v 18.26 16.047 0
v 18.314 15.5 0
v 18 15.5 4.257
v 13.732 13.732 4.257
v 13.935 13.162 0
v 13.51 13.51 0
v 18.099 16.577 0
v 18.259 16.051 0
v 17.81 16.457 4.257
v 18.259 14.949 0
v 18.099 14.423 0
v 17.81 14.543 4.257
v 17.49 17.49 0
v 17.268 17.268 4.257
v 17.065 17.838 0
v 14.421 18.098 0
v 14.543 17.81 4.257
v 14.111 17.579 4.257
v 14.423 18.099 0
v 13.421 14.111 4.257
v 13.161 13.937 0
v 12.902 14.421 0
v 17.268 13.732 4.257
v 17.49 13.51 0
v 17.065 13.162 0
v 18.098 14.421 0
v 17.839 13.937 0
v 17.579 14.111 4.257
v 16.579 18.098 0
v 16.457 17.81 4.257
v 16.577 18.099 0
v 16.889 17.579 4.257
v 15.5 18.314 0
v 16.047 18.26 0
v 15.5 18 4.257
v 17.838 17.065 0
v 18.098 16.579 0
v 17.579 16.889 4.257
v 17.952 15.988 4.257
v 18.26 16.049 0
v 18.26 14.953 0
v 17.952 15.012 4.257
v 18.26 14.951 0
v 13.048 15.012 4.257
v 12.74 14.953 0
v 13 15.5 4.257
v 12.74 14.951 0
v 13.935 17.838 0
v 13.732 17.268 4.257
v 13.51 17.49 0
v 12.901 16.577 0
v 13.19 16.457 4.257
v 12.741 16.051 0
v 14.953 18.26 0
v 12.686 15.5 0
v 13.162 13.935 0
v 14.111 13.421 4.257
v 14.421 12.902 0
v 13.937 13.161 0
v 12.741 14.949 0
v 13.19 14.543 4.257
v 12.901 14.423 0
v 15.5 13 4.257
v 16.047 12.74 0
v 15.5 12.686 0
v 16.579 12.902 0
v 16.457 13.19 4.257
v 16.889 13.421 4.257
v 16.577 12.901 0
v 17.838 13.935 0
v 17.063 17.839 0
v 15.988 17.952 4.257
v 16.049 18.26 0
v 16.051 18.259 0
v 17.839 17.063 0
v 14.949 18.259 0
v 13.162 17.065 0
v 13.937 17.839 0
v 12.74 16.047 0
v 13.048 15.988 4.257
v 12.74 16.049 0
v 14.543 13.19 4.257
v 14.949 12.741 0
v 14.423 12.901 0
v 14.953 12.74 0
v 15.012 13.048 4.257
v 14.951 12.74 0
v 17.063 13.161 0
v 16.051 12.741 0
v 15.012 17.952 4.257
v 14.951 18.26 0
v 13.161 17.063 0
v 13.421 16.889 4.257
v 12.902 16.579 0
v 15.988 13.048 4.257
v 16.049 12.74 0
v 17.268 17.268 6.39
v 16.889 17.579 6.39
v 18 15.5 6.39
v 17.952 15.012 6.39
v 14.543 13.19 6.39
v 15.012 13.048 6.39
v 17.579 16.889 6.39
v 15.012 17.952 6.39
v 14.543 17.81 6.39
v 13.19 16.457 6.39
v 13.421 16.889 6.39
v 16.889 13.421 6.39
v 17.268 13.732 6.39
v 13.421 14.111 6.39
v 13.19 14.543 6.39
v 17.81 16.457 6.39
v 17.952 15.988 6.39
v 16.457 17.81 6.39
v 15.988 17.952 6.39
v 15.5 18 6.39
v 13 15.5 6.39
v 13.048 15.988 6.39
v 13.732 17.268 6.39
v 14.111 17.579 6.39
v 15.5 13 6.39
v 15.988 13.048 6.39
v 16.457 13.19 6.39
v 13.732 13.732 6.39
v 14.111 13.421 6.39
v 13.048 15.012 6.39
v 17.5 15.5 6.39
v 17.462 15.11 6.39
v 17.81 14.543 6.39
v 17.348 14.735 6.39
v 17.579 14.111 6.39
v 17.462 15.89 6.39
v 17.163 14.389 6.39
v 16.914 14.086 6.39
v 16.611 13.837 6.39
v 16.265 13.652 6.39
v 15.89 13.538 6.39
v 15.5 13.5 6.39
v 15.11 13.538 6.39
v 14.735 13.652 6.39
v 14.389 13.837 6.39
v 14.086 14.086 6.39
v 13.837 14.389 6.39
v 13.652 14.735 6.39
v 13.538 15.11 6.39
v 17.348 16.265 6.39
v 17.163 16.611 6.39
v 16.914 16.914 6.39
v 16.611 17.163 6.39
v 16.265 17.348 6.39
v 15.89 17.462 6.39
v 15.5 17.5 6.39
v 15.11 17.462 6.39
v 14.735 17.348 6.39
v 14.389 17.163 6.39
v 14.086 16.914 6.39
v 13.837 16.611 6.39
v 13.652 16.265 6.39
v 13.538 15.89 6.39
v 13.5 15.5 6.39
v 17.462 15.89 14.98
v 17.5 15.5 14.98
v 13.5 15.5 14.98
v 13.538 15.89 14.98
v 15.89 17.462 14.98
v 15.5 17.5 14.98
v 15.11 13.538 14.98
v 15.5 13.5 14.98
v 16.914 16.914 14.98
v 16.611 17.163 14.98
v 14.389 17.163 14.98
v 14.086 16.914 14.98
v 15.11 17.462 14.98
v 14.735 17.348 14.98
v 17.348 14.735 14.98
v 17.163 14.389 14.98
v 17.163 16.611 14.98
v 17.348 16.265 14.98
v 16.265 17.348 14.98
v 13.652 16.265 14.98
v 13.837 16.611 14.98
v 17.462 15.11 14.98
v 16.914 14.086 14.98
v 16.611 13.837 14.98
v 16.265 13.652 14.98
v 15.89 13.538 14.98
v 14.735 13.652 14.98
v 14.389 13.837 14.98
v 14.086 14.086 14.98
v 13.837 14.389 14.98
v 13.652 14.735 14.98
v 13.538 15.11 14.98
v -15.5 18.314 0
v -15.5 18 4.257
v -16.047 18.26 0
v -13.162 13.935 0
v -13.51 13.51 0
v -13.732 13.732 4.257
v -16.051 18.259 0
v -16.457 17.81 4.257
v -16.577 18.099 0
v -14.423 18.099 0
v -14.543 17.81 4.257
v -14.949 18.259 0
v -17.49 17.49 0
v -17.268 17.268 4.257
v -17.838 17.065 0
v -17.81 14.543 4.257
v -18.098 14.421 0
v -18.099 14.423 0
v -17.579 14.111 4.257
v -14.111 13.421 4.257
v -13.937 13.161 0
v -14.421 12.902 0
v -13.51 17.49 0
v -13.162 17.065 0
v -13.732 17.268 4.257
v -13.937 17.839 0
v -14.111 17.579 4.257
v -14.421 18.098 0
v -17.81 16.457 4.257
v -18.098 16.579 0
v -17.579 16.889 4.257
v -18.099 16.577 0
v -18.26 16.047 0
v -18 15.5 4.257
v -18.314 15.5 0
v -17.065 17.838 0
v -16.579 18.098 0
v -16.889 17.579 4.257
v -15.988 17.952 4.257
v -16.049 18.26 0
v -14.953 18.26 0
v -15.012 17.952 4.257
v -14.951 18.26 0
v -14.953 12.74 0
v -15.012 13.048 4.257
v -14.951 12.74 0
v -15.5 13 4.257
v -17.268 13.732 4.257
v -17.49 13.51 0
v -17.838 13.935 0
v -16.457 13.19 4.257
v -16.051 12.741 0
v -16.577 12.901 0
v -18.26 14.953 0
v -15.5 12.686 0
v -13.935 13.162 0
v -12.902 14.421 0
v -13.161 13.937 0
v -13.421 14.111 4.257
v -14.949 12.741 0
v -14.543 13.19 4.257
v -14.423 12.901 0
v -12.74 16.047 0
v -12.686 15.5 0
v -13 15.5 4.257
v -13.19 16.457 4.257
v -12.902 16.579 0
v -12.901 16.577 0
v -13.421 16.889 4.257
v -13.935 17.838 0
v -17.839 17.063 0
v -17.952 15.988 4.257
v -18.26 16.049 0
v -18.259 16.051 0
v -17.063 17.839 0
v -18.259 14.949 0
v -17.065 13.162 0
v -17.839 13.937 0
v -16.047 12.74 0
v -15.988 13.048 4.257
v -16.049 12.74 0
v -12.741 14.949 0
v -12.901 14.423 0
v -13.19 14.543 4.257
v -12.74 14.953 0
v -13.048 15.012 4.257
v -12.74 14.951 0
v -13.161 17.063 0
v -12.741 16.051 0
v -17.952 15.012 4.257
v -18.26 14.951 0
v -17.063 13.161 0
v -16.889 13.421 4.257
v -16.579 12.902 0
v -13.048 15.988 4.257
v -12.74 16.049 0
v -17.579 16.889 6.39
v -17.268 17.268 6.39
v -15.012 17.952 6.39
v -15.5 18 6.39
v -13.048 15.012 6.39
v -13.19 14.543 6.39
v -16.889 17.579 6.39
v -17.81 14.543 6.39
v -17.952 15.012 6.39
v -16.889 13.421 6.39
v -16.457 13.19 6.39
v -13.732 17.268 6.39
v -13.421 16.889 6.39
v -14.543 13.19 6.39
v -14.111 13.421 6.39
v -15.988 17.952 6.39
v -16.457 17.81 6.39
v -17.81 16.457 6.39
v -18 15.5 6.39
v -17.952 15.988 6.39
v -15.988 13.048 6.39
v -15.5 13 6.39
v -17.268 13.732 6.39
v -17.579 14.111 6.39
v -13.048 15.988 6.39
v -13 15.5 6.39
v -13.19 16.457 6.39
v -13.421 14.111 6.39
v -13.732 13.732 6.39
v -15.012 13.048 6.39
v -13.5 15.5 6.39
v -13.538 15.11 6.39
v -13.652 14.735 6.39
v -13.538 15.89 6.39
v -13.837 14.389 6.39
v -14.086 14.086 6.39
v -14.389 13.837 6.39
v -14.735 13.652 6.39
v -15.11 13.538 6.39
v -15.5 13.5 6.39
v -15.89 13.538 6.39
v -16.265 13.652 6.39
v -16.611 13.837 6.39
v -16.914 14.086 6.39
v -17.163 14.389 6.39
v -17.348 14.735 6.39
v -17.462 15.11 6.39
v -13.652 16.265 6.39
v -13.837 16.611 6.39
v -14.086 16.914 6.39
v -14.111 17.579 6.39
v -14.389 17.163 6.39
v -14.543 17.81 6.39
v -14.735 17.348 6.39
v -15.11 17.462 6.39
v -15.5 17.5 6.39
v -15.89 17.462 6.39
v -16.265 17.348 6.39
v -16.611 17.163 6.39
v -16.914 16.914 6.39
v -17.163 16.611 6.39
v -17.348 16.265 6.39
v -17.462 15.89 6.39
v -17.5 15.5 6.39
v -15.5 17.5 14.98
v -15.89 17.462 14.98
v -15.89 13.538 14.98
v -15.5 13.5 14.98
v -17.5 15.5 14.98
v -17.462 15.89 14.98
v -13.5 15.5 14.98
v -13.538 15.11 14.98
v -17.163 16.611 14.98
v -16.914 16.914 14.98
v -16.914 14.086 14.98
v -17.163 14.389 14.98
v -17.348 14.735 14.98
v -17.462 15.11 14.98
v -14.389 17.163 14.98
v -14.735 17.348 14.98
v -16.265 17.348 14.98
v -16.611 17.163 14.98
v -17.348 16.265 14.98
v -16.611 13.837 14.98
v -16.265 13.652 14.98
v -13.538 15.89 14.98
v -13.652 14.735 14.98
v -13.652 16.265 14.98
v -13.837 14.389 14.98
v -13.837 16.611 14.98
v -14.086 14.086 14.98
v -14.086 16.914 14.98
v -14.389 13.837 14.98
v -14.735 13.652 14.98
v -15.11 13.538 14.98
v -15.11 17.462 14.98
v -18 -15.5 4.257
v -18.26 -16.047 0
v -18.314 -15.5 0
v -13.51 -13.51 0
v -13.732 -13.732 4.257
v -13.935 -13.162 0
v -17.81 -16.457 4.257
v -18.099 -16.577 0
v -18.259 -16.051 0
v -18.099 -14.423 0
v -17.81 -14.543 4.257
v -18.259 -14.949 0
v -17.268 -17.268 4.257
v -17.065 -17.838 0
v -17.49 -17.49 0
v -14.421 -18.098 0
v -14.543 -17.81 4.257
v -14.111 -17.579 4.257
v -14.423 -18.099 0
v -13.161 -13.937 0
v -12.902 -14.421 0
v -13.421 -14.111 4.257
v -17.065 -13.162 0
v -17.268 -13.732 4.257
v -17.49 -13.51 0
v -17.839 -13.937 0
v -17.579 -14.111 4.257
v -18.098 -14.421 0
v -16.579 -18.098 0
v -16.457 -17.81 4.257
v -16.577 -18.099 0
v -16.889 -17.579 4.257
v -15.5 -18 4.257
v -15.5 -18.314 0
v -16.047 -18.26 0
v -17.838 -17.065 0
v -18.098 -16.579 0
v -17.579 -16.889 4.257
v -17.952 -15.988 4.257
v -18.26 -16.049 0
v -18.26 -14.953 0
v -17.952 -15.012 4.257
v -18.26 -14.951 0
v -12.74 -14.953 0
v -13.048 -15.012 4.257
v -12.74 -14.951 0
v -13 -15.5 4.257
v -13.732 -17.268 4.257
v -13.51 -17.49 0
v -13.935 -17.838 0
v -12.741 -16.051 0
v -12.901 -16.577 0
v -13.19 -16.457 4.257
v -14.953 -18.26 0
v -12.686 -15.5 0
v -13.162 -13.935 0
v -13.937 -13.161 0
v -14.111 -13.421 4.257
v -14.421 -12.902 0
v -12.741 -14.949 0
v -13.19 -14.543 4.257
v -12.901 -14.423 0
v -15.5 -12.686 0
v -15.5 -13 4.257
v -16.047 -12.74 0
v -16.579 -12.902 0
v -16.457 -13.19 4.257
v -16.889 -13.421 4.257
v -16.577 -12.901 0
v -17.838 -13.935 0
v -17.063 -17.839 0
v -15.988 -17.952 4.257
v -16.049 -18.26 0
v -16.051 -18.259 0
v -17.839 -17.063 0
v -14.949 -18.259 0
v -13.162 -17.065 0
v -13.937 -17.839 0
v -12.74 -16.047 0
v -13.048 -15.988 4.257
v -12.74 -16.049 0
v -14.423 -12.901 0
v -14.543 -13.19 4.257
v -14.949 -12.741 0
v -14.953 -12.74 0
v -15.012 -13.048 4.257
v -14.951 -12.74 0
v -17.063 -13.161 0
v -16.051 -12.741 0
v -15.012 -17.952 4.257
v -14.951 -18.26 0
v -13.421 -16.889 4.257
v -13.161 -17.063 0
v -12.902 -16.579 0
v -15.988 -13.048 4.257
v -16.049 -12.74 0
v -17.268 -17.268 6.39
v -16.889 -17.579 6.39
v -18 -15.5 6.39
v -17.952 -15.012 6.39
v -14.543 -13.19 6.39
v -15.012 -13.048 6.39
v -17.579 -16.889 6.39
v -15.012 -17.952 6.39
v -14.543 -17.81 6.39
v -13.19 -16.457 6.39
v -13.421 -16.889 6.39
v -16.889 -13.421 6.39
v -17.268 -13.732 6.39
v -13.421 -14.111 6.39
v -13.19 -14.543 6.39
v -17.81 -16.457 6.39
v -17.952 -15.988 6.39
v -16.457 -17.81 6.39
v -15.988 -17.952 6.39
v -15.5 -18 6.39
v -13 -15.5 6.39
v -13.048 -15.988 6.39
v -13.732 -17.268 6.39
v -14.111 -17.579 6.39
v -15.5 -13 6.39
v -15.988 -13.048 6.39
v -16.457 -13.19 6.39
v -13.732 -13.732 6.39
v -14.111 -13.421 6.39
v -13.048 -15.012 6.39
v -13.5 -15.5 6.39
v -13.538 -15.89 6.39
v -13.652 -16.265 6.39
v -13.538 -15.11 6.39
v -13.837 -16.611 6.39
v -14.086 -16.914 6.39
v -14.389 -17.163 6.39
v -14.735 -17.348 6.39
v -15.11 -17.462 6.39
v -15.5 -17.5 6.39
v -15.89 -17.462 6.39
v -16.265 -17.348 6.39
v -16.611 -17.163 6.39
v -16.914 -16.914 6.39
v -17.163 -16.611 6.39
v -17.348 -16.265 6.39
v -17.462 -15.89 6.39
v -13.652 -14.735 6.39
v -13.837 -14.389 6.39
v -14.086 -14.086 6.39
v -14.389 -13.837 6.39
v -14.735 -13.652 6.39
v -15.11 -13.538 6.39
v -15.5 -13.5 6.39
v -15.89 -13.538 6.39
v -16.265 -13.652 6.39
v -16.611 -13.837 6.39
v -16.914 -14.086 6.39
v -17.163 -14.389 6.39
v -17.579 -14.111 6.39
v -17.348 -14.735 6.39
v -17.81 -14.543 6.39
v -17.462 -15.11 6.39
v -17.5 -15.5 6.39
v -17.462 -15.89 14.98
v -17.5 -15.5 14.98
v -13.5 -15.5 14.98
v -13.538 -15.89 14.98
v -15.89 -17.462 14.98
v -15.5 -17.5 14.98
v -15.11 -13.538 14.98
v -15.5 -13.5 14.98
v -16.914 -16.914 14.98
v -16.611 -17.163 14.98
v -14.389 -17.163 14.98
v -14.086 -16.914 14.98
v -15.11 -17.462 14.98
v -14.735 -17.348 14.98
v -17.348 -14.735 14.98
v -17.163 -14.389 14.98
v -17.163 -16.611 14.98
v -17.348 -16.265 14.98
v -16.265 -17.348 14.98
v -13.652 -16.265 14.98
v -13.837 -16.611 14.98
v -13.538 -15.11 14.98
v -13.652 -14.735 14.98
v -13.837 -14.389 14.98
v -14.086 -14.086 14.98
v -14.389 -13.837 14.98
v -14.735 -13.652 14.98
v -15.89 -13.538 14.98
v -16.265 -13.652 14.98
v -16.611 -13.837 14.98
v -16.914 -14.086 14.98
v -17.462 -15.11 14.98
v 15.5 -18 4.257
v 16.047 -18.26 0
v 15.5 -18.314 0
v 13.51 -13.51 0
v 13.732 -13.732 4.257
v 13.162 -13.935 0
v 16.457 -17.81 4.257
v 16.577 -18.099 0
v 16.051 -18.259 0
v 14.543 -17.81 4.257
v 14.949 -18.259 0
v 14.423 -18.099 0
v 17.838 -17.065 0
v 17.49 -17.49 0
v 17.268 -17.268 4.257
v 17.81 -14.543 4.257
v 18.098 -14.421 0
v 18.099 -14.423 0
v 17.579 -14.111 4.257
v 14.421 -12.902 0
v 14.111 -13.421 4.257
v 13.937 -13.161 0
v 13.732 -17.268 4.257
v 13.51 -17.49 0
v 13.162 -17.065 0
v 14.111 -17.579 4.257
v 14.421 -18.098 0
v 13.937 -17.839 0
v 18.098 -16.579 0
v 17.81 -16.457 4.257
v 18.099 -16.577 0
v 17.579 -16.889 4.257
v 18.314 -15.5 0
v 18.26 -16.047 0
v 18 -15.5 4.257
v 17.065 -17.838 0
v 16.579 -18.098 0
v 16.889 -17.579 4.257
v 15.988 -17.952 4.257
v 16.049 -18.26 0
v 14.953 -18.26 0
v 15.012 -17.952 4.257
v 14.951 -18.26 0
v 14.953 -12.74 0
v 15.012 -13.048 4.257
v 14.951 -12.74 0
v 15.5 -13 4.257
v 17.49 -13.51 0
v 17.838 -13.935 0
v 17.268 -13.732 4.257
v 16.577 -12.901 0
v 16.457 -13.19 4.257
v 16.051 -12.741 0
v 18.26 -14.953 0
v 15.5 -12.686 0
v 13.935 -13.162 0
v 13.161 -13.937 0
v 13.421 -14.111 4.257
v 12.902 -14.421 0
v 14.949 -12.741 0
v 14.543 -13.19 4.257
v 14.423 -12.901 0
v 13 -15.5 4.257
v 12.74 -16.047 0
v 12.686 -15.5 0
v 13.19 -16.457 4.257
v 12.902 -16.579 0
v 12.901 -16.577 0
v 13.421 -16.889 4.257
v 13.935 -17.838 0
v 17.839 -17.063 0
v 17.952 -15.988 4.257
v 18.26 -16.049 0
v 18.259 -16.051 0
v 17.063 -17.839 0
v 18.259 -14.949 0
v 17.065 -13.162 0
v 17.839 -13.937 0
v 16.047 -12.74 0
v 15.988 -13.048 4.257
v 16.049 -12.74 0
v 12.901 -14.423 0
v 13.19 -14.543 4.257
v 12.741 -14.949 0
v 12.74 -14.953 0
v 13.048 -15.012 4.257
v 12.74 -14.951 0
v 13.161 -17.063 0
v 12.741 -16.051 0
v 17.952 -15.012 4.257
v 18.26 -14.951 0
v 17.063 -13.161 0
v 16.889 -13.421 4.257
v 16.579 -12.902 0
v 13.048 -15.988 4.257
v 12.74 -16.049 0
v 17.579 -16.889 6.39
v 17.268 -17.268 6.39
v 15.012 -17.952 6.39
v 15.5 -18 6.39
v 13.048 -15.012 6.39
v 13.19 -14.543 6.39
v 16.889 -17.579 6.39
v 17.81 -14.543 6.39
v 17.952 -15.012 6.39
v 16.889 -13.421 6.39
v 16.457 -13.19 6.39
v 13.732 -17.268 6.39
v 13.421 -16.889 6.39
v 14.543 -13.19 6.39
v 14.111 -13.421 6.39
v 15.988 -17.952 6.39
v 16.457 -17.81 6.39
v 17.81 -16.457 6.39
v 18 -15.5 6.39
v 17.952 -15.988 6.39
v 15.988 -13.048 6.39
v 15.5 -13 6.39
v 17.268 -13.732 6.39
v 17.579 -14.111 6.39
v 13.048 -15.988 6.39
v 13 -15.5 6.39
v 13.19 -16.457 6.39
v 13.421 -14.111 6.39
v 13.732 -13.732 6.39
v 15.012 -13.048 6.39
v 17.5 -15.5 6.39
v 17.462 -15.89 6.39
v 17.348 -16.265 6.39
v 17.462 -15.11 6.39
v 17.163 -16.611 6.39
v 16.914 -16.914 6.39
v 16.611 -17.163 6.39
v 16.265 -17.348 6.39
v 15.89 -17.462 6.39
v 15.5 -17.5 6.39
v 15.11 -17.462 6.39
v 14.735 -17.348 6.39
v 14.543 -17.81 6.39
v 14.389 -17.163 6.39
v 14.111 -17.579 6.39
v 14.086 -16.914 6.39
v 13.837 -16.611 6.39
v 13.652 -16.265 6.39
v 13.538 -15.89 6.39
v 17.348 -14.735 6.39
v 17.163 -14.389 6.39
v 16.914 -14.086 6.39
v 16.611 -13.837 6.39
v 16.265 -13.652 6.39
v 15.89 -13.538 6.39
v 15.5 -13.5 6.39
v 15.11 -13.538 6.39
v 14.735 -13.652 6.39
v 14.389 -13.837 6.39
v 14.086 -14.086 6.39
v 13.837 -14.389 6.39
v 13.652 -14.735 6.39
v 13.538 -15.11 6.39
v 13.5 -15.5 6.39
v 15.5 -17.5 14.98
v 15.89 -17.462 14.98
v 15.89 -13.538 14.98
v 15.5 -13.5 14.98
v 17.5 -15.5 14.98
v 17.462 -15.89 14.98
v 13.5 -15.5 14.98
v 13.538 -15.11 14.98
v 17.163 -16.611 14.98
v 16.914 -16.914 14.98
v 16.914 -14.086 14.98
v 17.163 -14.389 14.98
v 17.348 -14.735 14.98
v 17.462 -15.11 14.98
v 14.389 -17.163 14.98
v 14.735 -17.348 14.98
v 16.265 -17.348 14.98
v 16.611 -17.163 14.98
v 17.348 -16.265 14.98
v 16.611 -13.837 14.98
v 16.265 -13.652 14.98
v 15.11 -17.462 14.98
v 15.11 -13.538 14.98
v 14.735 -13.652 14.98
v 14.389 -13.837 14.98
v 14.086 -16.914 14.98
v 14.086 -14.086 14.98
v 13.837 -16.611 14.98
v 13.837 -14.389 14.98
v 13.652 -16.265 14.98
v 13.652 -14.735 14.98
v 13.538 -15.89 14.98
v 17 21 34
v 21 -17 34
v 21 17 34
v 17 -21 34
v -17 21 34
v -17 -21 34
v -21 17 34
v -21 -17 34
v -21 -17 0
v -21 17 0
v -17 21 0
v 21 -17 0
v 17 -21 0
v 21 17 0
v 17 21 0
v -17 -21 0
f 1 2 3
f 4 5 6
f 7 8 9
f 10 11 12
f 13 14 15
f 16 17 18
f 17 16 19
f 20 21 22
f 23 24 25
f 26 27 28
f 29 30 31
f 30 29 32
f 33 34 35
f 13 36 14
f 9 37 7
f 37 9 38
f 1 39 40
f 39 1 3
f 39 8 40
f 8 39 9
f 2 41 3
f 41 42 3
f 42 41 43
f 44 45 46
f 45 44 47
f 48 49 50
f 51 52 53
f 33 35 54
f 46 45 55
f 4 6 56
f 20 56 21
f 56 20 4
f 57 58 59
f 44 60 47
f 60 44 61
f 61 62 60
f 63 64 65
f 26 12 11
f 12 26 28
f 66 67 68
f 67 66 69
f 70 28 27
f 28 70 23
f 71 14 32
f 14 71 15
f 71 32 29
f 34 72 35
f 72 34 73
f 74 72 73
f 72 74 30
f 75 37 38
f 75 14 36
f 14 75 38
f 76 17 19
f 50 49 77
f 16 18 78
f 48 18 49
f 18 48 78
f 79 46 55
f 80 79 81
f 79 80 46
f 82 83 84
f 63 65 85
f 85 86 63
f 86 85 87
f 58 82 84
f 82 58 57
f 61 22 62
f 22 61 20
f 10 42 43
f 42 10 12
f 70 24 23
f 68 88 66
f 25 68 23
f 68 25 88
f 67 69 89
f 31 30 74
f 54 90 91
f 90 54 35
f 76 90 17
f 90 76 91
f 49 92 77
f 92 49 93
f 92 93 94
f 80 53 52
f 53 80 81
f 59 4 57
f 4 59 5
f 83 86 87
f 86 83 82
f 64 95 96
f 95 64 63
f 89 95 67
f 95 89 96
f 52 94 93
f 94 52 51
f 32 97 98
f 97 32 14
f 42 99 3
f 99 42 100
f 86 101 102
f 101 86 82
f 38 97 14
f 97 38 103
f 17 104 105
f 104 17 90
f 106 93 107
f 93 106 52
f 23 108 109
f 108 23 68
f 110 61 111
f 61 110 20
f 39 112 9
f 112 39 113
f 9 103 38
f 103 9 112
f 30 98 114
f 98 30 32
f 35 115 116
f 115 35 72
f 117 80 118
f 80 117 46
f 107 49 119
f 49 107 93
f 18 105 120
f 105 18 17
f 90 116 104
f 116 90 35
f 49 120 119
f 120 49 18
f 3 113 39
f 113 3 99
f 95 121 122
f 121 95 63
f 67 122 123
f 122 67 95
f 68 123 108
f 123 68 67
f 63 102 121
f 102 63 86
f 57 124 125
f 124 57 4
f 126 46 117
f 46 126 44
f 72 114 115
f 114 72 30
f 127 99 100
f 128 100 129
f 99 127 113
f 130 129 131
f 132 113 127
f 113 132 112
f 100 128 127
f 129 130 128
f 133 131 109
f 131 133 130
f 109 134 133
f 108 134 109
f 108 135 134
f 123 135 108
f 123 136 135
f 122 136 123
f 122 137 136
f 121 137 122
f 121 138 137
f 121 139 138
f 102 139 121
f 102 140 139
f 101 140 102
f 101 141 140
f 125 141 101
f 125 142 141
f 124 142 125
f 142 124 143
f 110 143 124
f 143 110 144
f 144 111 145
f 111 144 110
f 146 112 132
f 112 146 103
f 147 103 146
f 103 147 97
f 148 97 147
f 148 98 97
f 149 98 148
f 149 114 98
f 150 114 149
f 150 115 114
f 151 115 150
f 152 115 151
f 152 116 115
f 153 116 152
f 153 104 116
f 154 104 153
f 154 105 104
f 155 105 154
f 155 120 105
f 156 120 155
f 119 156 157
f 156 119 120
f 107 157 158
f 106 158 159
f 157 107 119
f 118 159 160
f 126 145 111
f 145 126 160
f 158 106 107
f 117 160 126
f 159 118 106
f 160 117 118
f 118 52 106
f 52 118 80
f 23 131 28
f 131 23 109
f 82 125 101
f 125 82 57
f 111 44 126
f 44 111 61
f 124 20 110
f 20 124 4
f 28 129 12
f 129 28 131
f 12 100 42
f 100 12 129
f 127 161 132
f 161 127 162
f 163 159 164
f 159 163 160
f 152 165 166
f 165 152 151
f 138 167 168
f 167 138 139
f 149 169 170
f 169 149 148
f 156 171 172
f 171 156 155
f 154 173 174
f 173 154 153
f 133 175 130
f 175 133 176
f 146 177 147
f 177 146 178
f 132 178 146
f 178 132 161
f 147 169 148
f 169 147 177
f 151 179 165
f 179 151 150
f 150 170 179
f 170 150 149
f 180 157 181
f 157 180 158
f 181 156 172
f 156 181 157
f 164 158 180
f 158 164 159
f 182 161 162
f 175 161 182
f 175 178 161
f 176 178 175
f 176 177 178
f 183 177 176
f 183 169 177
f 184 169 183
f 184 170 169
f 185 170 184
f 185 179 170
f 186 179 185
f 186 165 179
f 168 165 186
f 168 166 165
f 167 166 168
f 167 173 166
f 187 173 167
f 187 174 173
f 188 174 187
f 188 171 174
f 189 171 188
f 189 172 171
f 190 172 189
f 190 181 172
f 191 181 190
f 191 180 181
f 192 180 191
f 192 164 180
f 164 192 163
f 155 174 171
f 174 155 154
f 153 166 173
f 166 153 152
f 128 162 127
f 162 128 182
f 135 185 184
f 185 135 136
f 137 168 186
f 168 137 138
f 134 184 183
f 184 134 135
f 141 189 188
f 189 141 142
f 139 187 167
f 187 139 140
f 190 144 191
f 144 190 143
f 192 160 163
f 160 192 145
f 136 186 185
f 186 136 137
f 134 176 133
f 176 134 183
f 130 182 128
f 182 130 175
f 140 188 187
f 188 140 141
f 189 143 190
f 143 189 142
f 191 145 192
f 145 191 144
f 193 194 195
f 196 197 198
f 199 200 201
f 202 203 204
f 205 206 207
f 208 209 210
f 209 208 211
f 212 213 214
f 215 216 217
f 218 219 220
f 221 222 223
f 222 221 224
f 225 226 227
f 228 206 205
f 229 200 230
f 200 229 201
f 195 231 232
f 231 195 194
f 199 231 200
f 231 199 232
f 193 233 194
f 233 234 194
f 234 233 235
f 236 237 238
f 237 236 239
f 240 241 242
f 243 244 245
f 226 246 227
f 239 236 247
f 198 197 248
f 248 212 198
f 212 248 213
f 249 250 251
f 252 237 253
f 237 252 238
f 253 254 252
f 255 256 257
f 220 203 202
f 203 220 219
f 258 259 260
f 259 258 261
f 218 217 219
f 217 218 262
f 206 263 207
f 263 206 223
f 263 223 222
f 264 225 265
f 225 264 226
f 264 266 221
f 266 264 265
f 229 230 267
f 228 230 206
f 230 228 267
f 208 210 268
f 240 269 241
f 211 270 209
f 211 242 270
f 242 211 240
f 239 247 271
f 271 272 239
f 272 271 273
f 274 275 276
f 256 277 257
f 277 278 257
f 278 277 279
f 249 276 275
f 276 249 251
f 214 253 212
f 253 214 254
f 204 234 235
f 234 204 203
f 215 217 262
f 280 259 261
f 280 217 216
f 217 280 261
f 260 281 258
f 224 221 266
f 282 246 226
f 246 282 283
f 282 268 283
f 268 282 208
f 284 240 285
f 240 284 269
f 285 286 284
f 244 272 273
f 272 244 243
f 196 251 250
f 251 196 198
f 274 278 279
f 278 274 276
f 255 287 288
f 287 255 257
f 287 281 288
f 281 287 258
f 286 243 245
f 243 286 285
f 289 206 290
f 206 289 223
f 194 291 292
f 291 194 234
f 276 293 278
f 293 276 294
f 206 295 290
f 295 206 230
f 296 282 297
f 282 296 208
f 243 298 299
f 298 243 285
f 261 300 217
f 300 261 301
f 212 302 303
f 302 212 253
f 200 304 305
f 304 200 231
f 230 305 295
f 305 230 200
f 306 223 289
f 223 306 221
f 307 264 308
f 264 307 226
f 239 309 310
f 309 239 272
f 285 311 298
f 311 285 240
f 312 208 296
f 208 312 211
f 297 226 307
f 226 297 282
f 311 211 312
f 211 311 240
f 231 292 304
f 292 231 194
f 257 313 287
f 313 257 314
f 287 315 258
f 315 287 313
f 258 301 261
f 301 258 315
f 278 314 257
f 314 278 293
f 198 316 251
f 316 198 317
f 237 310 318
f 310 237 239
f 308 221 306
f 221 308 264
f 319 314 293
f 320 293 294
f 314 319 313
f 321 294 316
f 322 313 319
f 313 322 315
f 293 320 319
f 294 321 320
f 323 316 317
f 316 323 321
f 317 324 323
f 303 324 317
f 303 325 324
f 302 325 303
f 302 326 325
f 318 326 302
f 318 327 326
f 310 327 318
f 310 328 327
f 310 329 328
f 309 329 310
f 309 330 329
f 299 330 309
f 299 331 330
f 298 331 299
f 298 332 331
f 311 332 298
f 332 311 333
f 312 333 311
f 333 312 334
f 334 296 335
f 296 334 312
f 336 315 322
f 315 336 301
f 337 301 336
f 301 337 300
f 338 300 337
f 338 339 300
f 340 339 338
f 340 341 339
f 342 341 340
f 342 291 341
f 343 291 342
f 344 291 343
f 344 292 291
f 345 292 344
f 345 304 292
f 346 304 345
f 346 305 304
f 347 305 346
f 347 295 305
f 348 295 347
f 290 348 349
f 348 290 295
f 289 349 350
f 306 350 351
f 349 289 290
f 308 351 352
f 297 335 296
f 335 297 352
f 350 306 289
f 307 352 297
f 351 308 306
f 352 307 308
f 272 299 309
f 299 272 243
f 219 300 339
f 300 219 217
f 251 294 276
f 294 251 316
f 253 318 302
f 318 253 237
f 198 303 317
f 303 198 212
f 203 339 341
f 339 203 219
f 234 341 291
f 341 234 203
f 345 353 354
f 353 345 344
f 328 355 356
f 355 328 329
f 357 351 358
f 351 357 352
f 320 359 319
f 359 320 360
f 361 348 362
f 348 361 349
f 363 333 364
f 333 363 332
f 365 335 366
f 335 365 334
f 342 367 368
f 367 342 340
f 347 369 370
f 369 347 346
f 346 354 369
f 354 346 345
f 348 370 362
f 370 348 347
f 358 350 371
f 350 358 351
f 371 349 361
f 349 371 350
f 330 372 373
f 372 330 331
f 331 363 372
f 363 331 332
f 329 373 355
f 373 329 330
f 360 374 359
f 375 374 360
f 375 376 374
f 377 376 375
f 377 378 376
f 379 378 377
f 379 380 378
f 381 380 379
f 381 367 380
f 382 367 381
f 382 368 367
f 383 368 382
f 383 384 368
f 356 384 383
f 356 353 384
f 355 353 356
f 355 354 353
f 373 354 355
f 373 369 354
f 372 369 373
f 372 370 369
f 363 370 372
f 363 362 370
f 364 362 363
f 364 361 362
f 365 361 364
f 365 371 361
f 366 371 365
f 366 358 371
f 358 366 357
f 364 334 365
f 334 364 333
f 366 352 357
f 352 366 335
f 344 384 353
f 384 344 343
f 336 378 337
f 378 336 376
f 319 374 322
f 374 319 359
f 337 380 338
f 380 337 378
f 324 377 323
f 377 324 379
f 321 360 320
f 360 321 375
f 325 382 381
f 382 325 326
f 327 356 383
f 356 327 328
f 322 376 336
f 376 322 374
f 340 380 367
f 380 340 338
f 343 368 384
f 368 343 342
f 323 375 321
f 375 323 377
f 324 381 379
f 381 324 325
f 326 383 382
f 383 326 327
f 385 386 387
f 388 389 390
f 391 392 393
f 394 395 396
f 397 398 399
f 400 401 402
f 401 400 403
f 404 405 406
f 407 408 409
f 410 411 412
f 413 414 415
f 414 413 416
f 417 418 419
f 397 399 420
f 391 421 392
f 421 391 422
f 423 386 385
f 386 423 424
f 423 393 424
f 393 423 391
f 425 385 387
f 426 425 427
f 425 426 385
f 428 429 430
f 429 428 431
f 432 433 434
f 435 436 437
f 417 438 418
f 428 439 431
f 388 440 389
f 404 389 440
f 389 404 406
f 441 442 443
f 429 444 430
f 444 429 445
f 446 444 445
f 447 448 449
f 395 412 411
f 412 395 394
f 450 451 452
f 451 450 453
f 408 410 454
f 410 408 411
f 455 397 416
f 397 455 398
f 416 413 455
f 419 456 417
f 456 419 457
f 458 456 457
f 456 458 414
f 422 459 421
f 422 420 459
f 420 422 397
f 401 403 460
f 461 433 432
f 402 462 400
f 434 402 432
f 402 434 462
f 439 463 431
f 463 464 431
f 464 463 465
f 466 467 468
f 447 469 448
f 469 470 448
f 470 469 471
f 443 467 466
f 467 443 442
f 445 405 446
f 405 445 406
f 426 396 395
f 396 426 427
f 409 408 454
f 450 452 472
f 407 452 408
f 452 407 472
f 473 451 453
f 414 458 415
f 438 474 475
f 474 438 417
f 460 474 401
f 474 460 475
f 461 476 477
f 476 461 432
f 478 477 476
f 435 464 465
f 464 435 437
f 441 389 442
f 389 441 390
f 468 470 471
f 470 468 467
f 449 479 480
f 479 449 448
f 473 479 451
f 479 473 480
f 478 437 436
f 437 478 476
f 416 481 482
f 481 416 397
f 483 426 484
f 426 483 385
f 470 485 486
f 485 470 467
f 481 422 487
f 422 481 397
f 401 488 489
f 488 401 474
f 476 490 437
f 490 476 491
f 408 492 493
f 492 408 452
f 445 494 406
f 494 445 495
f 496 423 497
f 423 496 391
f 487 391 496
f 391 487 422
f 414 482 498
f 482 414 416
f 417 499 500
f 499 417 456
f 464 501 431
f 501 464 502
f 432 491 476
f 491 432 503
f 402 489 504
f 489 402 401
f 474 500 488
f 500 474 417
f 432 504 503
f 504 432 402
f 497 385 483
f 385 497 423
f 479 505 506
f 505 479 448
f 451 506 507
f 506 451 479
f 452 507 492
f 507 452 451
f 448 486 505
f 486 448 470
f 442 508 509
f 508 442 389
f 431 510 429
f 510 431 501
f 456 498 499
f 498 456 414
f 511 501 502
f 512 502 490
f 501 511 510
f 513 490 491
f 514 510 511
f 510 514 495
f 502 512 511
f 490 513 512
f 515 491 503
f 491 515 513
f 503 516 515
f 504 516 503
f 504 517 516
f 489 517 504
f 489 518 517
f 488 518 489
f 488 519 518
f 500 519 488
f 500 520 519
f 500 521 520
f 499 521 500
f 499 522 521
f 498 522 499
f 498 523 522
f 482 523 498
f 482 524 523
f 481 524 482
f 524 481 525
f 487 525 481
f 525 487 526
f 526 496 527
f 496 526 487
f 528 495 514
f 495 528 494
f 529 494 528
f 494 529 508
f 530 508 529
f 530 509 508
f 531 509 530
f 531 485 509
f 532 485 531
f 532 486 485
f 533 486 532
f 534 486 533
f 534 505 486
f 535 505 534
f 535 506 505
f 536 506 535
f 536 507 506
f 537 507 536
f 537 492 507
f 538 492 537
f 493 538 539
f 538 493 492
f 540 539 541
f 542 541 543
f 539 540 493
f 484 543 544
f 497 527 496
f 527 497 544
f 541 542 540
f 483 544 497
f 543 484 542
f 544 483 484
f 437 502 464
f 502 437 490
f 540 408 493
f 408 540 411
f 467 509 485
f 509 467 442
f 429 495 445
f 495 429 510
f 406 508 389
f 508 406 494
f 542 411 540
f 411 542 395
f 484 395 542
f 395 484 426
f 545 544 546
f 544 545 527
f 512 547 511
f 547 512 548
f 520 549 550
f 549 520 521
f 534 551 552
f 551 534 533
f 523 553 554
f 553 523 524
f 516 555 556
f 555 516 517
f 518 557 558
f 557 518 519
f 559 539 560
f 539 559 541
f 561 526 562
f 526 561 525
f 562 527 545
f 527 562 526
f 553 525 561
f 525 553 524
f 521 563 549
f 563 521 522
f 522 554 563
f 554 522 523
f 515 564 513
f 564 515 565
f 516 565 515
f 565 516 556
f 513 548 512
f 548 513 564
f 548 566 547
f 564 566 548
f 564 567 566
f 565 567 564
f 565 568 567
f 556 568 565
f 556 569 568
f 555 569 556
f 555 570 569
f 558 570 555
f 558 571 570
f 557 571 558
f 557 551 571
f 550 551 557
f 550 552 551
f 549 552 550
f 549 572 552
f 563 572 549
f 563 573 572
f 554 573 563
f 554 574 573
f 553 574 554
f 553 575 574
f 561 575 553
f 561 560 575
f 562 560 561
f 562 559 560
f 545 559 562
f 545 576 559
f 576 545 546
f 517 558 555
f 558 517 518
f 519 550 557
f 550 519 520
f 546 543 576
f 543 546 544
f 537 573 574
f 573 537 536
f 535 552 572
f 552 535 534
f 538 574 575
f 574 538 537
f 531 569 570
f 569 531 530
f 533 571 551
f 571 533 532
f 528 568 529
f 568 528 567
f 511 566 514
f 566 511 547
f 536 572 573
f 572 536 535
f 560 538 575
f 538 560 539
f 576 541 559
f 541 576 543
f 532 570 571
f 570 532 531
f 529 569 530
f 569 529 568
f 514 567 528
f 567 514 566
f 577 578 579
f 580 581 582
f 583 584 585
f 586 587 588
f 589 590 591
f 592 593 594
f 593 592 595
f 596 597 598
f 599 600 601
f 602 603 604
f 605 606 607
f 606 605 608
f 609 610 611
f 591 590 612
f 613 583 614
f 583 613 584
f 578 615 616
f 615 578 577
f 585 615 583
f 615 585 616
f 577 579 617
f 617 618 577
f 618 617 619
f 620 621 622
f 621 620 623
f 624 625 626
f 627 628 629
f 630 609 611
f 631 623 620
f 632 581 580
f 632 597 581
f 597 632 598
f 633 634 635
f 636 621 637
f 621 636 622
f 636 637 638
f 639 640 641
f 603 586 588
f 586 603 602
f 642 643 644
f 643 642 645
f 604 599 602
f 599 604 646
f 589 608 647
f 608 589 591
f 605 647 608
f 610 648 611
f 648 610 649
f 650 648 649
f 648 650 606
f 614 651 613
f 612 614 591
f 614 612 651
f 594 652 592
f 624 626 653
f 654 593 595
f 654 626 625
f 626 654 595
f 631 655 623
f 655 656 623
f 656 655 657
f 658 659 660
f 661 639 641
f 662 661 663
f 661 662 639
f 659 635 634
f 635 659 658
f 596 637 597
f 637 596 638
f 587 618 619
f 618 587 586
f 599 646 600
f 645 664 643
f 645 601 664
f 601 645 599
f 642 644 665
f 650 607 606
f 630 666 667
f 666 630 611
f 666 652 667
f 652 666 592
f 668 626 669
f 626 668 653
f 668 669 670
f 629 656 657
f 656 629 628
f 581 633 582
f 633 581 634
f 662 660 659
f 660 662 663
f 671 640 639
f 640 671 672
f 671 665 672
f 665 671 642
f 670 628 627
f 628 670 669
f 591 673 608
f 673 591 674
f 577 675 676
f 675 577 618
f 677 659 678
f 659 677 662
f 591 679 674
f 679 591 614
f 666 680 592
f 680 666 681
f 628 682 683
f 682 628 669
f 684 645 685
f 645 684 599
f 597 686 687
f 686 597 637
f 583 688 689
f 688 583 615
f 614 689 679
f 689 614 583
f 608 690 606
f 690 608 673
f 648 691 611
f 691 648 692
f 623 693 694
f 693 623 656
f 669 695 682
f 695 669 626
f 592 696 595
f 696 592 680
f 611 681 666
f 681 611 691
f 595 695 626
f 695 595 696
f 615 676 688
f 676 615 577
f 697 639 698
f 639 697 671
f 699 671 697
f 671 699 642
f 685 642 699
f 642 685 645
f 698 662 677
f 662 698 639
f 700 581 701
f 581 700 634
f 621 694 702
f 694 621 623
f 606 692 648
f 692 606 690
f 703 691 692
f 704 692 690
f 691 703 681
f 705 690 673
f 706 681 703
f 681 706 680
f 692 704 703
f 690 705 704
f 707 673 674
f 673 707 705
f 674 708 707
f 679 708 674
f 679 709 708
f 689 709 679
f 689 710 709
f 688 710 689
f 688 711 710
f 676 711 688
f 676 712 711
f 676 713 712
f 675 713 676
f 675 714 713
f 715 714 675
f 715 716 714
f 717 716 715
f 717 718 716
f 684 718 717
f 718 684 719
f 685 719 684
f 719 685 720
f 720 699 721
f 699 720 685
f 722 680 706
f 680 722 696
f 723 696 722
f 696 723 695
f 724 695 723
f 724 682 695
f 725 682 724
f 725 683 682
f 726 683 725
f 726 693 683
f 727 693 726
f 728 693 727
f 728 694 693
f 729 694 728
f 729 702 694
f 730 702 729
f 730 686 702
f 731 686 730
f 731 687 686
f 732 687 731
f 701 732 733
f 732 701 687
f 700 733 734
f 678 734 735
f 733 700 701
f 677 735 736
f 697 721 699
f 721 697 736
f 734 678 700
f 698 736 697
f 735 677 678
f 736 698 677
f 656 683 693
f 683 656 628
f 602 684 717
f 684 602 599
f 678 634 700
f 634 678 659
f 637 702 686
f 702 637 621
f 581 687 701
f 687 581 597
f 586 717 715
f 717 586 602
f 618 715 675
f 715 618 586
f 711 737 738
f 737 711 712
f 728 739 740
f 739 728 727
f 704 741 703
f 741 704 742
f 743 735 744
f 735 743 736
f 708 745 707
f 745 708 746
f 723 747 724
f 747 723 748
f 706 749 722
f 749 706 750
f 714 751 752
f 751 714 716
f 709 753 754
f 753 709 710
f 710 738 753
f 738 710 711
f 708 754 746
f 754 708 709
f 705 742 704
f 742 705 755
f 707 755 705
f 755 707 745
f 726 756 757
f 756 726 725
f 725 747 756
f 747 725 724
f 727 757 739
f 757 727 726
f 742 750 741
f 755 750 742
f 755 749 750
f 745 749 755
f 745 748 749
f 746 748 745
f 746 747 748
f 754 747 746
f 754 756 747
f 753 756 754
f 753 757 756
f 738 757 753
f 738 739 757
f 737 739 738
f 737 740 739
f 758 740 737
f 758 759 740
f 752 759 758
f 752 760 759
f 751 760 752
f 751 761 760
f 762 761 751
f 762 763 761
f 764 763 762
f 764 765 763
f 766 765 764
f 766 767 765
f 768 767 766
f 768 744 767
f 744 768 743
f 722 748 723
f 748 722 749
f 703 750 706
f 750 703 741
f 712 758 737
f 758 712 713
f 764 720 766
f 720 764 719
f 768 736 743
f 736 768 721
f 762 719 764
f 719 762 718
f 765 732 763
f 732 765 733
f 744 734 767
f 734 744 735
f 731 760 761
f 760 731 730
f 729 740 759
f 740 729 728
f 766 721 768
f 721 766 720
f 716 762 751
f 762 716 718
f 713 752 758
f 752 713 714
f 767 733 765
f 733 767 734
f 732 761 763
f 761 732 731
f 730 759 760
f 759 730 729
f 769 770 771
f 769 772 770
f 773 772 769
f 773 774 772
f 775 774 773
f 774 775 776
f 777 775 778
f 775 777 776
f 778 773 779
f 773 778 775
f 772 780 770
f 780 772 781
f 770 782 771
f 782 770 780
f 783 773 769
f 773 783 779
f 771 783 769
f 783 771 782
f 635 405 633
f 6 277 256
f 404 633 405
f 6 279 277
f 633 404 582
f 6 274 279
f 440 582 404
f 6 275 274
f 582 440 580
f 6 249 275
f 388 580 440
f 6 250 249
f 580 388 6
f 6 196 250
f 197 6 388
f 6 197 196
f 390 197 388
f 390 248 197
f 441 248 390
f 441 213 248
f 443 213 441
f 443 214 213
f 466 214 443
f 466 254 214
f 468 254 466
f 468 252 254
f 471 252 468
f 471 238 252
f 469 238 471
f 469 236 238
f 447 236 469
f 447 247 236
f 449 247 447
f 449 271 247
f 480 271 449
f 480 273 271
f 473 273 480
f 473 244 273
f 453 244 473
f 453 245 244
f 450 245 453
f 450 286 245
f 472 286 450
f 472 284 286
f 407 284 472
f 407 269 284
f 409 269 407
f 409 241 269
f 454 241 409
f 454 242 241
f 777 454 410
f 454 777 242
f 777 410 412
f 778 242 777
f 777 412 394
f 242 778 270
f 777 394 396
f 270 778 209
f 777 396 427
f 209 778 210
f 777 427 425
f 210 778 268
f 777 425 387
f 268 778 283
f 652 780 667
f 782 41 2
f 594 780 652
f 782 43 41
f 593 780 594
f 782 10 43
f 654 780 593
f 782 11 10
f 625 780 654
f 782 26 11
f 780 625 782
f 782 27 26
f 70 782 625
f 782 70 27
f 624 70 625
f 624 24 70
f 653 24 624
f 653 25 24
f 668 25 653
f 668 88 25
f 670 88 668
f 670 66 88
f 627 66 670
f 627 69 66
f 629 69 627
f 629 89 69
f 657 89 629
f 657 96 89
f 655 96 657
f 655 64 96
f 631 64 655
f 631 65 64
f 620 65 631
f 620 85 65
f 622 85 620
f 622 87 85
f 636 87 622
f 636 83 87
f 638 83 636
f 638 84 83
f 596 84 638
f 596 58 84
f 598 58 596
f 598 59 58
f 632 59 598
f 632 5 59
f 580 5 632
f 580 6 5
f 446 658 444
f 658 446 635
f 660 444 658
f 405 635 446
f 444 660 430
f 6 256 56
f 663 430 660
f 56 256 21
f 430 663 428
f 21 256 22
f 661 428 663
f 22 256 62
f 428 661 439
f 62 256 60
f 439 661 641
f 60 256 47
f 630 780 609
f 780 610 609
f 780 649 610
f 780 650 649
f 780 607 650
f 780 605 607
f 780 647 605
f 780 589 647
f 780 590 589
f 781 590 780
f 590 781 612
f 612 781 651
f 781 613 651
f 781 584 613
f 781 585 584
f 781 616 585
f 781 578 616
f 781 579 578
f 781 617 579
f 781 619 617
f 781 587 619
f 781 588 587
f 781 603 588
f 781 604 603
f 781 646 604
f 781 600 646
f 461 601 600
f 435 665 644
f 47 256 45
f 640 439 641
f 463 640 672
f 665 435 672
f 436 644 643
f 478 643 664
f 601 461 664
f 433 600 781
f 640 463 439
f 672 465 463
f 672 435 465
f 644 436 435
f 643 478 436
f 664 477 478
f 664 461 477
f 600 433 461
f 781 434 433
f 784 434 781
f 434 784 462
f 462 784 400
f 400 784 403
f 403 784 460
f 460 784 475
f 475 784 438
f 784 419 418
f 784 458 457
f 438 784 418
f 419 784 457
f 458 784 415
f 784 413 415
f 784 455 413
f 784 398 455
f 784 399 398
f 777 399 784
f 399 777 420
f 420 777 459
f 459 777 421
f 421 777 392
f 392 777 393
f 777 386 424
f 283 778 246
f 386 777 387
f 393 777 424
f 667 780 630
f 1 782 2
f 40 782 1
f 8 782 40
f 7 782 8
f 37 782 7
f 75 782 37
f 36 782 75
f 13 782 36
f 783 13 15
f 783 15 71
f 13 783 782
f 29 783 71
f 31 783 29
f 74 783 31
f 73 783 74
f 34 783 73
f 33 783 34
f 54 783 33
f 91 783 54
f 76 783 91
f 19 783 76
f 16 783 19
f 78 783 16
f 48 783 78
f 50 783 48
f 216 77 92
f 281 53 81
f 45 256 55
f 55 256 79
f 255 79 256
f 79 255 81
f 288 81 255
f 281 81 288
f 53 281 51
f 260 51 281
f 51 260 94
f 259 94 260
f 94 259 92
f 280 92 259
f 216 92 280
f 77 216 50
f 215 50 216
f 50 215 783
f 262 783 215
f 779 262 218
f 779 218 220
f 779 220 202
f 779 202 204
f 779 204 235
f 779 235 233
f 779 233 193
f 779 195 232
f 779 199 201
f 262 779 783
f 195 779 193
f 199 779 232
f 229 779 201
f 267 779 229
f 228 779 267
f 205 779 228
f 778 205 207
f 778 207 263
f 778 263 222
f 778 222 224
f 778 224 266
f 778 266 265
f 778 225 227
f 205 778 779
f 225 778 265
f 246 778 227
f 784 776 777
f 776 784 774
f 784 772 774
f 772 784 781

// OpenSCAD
$fn=32;

eps1 = 0.01;
eps2 = 0.02;

// Dimensions from here http://reprap.org/wiki/NEMA_17_Stepper_motor
stepper_w = 42;
stepper_length = 34;
stepper_hole_spacing = 31;
stepper_corner= 4;

// Threaded insert hole diameter multiplier. Allows to tweak the diameter.
threaded_insert_diameter_multiplier = 1.0;

// Hole for a M3 metal insert, mcmaster part number 94180a333.
// h is the total depth for the screw hole. Already includes an
// extra eps1 at the opening side.
//
// TODO: move some of the const to customizeable parameters at the begining
// of the file.
module m3_threaded_insert(h) {
  // Adding tweaks for compensate for my printer's tolerace.
  A = threaded_insert_diameter_multiplier*(4.7 + 0.3);
  B = threaded_insert_diameter_multiplier*(5.23 + 0.4);
  L = 6.4;
  D = 4.0;
  translate([0, 0, -eps1]) {
    // NOTE: diameter are compensated to actual print results.
    // May vary among printers.
    cylinder(d1=B, d2=A, h=eps1+L*2/3, $f2=32);
    cylinder(d=A, h=eps1+L, $fn=32);
    translate([0, 0, L-eps1]) cylinder(d=D, h=h+eps1-L, $fn=32);
  }
}

module stepper_side() {
  translate([-stepper_w/2+stepper_corner, -stepper_w/2, 0])
  cube([stepper_w-2*stepper_corner, eps1, stepper_length]); 
}

module stepper_screw_hole() {
  translate([stepper_hole_spacing/2, stepper_hole_spacing/2, -eps1])
      m3_threaded_insert(15);
}

module stepper_body() {
  difference() {
    hull() {
      for (i = [0:90:270]) {
        rotate([0, 0, i]) stepper_side();  
      }
    }
    for (i = [0:90:270]) {
      rotate([0, 0, i])
        stepper_screw_hole();
    }
  }
}

module main() {
  stepper_body();
}

main();
